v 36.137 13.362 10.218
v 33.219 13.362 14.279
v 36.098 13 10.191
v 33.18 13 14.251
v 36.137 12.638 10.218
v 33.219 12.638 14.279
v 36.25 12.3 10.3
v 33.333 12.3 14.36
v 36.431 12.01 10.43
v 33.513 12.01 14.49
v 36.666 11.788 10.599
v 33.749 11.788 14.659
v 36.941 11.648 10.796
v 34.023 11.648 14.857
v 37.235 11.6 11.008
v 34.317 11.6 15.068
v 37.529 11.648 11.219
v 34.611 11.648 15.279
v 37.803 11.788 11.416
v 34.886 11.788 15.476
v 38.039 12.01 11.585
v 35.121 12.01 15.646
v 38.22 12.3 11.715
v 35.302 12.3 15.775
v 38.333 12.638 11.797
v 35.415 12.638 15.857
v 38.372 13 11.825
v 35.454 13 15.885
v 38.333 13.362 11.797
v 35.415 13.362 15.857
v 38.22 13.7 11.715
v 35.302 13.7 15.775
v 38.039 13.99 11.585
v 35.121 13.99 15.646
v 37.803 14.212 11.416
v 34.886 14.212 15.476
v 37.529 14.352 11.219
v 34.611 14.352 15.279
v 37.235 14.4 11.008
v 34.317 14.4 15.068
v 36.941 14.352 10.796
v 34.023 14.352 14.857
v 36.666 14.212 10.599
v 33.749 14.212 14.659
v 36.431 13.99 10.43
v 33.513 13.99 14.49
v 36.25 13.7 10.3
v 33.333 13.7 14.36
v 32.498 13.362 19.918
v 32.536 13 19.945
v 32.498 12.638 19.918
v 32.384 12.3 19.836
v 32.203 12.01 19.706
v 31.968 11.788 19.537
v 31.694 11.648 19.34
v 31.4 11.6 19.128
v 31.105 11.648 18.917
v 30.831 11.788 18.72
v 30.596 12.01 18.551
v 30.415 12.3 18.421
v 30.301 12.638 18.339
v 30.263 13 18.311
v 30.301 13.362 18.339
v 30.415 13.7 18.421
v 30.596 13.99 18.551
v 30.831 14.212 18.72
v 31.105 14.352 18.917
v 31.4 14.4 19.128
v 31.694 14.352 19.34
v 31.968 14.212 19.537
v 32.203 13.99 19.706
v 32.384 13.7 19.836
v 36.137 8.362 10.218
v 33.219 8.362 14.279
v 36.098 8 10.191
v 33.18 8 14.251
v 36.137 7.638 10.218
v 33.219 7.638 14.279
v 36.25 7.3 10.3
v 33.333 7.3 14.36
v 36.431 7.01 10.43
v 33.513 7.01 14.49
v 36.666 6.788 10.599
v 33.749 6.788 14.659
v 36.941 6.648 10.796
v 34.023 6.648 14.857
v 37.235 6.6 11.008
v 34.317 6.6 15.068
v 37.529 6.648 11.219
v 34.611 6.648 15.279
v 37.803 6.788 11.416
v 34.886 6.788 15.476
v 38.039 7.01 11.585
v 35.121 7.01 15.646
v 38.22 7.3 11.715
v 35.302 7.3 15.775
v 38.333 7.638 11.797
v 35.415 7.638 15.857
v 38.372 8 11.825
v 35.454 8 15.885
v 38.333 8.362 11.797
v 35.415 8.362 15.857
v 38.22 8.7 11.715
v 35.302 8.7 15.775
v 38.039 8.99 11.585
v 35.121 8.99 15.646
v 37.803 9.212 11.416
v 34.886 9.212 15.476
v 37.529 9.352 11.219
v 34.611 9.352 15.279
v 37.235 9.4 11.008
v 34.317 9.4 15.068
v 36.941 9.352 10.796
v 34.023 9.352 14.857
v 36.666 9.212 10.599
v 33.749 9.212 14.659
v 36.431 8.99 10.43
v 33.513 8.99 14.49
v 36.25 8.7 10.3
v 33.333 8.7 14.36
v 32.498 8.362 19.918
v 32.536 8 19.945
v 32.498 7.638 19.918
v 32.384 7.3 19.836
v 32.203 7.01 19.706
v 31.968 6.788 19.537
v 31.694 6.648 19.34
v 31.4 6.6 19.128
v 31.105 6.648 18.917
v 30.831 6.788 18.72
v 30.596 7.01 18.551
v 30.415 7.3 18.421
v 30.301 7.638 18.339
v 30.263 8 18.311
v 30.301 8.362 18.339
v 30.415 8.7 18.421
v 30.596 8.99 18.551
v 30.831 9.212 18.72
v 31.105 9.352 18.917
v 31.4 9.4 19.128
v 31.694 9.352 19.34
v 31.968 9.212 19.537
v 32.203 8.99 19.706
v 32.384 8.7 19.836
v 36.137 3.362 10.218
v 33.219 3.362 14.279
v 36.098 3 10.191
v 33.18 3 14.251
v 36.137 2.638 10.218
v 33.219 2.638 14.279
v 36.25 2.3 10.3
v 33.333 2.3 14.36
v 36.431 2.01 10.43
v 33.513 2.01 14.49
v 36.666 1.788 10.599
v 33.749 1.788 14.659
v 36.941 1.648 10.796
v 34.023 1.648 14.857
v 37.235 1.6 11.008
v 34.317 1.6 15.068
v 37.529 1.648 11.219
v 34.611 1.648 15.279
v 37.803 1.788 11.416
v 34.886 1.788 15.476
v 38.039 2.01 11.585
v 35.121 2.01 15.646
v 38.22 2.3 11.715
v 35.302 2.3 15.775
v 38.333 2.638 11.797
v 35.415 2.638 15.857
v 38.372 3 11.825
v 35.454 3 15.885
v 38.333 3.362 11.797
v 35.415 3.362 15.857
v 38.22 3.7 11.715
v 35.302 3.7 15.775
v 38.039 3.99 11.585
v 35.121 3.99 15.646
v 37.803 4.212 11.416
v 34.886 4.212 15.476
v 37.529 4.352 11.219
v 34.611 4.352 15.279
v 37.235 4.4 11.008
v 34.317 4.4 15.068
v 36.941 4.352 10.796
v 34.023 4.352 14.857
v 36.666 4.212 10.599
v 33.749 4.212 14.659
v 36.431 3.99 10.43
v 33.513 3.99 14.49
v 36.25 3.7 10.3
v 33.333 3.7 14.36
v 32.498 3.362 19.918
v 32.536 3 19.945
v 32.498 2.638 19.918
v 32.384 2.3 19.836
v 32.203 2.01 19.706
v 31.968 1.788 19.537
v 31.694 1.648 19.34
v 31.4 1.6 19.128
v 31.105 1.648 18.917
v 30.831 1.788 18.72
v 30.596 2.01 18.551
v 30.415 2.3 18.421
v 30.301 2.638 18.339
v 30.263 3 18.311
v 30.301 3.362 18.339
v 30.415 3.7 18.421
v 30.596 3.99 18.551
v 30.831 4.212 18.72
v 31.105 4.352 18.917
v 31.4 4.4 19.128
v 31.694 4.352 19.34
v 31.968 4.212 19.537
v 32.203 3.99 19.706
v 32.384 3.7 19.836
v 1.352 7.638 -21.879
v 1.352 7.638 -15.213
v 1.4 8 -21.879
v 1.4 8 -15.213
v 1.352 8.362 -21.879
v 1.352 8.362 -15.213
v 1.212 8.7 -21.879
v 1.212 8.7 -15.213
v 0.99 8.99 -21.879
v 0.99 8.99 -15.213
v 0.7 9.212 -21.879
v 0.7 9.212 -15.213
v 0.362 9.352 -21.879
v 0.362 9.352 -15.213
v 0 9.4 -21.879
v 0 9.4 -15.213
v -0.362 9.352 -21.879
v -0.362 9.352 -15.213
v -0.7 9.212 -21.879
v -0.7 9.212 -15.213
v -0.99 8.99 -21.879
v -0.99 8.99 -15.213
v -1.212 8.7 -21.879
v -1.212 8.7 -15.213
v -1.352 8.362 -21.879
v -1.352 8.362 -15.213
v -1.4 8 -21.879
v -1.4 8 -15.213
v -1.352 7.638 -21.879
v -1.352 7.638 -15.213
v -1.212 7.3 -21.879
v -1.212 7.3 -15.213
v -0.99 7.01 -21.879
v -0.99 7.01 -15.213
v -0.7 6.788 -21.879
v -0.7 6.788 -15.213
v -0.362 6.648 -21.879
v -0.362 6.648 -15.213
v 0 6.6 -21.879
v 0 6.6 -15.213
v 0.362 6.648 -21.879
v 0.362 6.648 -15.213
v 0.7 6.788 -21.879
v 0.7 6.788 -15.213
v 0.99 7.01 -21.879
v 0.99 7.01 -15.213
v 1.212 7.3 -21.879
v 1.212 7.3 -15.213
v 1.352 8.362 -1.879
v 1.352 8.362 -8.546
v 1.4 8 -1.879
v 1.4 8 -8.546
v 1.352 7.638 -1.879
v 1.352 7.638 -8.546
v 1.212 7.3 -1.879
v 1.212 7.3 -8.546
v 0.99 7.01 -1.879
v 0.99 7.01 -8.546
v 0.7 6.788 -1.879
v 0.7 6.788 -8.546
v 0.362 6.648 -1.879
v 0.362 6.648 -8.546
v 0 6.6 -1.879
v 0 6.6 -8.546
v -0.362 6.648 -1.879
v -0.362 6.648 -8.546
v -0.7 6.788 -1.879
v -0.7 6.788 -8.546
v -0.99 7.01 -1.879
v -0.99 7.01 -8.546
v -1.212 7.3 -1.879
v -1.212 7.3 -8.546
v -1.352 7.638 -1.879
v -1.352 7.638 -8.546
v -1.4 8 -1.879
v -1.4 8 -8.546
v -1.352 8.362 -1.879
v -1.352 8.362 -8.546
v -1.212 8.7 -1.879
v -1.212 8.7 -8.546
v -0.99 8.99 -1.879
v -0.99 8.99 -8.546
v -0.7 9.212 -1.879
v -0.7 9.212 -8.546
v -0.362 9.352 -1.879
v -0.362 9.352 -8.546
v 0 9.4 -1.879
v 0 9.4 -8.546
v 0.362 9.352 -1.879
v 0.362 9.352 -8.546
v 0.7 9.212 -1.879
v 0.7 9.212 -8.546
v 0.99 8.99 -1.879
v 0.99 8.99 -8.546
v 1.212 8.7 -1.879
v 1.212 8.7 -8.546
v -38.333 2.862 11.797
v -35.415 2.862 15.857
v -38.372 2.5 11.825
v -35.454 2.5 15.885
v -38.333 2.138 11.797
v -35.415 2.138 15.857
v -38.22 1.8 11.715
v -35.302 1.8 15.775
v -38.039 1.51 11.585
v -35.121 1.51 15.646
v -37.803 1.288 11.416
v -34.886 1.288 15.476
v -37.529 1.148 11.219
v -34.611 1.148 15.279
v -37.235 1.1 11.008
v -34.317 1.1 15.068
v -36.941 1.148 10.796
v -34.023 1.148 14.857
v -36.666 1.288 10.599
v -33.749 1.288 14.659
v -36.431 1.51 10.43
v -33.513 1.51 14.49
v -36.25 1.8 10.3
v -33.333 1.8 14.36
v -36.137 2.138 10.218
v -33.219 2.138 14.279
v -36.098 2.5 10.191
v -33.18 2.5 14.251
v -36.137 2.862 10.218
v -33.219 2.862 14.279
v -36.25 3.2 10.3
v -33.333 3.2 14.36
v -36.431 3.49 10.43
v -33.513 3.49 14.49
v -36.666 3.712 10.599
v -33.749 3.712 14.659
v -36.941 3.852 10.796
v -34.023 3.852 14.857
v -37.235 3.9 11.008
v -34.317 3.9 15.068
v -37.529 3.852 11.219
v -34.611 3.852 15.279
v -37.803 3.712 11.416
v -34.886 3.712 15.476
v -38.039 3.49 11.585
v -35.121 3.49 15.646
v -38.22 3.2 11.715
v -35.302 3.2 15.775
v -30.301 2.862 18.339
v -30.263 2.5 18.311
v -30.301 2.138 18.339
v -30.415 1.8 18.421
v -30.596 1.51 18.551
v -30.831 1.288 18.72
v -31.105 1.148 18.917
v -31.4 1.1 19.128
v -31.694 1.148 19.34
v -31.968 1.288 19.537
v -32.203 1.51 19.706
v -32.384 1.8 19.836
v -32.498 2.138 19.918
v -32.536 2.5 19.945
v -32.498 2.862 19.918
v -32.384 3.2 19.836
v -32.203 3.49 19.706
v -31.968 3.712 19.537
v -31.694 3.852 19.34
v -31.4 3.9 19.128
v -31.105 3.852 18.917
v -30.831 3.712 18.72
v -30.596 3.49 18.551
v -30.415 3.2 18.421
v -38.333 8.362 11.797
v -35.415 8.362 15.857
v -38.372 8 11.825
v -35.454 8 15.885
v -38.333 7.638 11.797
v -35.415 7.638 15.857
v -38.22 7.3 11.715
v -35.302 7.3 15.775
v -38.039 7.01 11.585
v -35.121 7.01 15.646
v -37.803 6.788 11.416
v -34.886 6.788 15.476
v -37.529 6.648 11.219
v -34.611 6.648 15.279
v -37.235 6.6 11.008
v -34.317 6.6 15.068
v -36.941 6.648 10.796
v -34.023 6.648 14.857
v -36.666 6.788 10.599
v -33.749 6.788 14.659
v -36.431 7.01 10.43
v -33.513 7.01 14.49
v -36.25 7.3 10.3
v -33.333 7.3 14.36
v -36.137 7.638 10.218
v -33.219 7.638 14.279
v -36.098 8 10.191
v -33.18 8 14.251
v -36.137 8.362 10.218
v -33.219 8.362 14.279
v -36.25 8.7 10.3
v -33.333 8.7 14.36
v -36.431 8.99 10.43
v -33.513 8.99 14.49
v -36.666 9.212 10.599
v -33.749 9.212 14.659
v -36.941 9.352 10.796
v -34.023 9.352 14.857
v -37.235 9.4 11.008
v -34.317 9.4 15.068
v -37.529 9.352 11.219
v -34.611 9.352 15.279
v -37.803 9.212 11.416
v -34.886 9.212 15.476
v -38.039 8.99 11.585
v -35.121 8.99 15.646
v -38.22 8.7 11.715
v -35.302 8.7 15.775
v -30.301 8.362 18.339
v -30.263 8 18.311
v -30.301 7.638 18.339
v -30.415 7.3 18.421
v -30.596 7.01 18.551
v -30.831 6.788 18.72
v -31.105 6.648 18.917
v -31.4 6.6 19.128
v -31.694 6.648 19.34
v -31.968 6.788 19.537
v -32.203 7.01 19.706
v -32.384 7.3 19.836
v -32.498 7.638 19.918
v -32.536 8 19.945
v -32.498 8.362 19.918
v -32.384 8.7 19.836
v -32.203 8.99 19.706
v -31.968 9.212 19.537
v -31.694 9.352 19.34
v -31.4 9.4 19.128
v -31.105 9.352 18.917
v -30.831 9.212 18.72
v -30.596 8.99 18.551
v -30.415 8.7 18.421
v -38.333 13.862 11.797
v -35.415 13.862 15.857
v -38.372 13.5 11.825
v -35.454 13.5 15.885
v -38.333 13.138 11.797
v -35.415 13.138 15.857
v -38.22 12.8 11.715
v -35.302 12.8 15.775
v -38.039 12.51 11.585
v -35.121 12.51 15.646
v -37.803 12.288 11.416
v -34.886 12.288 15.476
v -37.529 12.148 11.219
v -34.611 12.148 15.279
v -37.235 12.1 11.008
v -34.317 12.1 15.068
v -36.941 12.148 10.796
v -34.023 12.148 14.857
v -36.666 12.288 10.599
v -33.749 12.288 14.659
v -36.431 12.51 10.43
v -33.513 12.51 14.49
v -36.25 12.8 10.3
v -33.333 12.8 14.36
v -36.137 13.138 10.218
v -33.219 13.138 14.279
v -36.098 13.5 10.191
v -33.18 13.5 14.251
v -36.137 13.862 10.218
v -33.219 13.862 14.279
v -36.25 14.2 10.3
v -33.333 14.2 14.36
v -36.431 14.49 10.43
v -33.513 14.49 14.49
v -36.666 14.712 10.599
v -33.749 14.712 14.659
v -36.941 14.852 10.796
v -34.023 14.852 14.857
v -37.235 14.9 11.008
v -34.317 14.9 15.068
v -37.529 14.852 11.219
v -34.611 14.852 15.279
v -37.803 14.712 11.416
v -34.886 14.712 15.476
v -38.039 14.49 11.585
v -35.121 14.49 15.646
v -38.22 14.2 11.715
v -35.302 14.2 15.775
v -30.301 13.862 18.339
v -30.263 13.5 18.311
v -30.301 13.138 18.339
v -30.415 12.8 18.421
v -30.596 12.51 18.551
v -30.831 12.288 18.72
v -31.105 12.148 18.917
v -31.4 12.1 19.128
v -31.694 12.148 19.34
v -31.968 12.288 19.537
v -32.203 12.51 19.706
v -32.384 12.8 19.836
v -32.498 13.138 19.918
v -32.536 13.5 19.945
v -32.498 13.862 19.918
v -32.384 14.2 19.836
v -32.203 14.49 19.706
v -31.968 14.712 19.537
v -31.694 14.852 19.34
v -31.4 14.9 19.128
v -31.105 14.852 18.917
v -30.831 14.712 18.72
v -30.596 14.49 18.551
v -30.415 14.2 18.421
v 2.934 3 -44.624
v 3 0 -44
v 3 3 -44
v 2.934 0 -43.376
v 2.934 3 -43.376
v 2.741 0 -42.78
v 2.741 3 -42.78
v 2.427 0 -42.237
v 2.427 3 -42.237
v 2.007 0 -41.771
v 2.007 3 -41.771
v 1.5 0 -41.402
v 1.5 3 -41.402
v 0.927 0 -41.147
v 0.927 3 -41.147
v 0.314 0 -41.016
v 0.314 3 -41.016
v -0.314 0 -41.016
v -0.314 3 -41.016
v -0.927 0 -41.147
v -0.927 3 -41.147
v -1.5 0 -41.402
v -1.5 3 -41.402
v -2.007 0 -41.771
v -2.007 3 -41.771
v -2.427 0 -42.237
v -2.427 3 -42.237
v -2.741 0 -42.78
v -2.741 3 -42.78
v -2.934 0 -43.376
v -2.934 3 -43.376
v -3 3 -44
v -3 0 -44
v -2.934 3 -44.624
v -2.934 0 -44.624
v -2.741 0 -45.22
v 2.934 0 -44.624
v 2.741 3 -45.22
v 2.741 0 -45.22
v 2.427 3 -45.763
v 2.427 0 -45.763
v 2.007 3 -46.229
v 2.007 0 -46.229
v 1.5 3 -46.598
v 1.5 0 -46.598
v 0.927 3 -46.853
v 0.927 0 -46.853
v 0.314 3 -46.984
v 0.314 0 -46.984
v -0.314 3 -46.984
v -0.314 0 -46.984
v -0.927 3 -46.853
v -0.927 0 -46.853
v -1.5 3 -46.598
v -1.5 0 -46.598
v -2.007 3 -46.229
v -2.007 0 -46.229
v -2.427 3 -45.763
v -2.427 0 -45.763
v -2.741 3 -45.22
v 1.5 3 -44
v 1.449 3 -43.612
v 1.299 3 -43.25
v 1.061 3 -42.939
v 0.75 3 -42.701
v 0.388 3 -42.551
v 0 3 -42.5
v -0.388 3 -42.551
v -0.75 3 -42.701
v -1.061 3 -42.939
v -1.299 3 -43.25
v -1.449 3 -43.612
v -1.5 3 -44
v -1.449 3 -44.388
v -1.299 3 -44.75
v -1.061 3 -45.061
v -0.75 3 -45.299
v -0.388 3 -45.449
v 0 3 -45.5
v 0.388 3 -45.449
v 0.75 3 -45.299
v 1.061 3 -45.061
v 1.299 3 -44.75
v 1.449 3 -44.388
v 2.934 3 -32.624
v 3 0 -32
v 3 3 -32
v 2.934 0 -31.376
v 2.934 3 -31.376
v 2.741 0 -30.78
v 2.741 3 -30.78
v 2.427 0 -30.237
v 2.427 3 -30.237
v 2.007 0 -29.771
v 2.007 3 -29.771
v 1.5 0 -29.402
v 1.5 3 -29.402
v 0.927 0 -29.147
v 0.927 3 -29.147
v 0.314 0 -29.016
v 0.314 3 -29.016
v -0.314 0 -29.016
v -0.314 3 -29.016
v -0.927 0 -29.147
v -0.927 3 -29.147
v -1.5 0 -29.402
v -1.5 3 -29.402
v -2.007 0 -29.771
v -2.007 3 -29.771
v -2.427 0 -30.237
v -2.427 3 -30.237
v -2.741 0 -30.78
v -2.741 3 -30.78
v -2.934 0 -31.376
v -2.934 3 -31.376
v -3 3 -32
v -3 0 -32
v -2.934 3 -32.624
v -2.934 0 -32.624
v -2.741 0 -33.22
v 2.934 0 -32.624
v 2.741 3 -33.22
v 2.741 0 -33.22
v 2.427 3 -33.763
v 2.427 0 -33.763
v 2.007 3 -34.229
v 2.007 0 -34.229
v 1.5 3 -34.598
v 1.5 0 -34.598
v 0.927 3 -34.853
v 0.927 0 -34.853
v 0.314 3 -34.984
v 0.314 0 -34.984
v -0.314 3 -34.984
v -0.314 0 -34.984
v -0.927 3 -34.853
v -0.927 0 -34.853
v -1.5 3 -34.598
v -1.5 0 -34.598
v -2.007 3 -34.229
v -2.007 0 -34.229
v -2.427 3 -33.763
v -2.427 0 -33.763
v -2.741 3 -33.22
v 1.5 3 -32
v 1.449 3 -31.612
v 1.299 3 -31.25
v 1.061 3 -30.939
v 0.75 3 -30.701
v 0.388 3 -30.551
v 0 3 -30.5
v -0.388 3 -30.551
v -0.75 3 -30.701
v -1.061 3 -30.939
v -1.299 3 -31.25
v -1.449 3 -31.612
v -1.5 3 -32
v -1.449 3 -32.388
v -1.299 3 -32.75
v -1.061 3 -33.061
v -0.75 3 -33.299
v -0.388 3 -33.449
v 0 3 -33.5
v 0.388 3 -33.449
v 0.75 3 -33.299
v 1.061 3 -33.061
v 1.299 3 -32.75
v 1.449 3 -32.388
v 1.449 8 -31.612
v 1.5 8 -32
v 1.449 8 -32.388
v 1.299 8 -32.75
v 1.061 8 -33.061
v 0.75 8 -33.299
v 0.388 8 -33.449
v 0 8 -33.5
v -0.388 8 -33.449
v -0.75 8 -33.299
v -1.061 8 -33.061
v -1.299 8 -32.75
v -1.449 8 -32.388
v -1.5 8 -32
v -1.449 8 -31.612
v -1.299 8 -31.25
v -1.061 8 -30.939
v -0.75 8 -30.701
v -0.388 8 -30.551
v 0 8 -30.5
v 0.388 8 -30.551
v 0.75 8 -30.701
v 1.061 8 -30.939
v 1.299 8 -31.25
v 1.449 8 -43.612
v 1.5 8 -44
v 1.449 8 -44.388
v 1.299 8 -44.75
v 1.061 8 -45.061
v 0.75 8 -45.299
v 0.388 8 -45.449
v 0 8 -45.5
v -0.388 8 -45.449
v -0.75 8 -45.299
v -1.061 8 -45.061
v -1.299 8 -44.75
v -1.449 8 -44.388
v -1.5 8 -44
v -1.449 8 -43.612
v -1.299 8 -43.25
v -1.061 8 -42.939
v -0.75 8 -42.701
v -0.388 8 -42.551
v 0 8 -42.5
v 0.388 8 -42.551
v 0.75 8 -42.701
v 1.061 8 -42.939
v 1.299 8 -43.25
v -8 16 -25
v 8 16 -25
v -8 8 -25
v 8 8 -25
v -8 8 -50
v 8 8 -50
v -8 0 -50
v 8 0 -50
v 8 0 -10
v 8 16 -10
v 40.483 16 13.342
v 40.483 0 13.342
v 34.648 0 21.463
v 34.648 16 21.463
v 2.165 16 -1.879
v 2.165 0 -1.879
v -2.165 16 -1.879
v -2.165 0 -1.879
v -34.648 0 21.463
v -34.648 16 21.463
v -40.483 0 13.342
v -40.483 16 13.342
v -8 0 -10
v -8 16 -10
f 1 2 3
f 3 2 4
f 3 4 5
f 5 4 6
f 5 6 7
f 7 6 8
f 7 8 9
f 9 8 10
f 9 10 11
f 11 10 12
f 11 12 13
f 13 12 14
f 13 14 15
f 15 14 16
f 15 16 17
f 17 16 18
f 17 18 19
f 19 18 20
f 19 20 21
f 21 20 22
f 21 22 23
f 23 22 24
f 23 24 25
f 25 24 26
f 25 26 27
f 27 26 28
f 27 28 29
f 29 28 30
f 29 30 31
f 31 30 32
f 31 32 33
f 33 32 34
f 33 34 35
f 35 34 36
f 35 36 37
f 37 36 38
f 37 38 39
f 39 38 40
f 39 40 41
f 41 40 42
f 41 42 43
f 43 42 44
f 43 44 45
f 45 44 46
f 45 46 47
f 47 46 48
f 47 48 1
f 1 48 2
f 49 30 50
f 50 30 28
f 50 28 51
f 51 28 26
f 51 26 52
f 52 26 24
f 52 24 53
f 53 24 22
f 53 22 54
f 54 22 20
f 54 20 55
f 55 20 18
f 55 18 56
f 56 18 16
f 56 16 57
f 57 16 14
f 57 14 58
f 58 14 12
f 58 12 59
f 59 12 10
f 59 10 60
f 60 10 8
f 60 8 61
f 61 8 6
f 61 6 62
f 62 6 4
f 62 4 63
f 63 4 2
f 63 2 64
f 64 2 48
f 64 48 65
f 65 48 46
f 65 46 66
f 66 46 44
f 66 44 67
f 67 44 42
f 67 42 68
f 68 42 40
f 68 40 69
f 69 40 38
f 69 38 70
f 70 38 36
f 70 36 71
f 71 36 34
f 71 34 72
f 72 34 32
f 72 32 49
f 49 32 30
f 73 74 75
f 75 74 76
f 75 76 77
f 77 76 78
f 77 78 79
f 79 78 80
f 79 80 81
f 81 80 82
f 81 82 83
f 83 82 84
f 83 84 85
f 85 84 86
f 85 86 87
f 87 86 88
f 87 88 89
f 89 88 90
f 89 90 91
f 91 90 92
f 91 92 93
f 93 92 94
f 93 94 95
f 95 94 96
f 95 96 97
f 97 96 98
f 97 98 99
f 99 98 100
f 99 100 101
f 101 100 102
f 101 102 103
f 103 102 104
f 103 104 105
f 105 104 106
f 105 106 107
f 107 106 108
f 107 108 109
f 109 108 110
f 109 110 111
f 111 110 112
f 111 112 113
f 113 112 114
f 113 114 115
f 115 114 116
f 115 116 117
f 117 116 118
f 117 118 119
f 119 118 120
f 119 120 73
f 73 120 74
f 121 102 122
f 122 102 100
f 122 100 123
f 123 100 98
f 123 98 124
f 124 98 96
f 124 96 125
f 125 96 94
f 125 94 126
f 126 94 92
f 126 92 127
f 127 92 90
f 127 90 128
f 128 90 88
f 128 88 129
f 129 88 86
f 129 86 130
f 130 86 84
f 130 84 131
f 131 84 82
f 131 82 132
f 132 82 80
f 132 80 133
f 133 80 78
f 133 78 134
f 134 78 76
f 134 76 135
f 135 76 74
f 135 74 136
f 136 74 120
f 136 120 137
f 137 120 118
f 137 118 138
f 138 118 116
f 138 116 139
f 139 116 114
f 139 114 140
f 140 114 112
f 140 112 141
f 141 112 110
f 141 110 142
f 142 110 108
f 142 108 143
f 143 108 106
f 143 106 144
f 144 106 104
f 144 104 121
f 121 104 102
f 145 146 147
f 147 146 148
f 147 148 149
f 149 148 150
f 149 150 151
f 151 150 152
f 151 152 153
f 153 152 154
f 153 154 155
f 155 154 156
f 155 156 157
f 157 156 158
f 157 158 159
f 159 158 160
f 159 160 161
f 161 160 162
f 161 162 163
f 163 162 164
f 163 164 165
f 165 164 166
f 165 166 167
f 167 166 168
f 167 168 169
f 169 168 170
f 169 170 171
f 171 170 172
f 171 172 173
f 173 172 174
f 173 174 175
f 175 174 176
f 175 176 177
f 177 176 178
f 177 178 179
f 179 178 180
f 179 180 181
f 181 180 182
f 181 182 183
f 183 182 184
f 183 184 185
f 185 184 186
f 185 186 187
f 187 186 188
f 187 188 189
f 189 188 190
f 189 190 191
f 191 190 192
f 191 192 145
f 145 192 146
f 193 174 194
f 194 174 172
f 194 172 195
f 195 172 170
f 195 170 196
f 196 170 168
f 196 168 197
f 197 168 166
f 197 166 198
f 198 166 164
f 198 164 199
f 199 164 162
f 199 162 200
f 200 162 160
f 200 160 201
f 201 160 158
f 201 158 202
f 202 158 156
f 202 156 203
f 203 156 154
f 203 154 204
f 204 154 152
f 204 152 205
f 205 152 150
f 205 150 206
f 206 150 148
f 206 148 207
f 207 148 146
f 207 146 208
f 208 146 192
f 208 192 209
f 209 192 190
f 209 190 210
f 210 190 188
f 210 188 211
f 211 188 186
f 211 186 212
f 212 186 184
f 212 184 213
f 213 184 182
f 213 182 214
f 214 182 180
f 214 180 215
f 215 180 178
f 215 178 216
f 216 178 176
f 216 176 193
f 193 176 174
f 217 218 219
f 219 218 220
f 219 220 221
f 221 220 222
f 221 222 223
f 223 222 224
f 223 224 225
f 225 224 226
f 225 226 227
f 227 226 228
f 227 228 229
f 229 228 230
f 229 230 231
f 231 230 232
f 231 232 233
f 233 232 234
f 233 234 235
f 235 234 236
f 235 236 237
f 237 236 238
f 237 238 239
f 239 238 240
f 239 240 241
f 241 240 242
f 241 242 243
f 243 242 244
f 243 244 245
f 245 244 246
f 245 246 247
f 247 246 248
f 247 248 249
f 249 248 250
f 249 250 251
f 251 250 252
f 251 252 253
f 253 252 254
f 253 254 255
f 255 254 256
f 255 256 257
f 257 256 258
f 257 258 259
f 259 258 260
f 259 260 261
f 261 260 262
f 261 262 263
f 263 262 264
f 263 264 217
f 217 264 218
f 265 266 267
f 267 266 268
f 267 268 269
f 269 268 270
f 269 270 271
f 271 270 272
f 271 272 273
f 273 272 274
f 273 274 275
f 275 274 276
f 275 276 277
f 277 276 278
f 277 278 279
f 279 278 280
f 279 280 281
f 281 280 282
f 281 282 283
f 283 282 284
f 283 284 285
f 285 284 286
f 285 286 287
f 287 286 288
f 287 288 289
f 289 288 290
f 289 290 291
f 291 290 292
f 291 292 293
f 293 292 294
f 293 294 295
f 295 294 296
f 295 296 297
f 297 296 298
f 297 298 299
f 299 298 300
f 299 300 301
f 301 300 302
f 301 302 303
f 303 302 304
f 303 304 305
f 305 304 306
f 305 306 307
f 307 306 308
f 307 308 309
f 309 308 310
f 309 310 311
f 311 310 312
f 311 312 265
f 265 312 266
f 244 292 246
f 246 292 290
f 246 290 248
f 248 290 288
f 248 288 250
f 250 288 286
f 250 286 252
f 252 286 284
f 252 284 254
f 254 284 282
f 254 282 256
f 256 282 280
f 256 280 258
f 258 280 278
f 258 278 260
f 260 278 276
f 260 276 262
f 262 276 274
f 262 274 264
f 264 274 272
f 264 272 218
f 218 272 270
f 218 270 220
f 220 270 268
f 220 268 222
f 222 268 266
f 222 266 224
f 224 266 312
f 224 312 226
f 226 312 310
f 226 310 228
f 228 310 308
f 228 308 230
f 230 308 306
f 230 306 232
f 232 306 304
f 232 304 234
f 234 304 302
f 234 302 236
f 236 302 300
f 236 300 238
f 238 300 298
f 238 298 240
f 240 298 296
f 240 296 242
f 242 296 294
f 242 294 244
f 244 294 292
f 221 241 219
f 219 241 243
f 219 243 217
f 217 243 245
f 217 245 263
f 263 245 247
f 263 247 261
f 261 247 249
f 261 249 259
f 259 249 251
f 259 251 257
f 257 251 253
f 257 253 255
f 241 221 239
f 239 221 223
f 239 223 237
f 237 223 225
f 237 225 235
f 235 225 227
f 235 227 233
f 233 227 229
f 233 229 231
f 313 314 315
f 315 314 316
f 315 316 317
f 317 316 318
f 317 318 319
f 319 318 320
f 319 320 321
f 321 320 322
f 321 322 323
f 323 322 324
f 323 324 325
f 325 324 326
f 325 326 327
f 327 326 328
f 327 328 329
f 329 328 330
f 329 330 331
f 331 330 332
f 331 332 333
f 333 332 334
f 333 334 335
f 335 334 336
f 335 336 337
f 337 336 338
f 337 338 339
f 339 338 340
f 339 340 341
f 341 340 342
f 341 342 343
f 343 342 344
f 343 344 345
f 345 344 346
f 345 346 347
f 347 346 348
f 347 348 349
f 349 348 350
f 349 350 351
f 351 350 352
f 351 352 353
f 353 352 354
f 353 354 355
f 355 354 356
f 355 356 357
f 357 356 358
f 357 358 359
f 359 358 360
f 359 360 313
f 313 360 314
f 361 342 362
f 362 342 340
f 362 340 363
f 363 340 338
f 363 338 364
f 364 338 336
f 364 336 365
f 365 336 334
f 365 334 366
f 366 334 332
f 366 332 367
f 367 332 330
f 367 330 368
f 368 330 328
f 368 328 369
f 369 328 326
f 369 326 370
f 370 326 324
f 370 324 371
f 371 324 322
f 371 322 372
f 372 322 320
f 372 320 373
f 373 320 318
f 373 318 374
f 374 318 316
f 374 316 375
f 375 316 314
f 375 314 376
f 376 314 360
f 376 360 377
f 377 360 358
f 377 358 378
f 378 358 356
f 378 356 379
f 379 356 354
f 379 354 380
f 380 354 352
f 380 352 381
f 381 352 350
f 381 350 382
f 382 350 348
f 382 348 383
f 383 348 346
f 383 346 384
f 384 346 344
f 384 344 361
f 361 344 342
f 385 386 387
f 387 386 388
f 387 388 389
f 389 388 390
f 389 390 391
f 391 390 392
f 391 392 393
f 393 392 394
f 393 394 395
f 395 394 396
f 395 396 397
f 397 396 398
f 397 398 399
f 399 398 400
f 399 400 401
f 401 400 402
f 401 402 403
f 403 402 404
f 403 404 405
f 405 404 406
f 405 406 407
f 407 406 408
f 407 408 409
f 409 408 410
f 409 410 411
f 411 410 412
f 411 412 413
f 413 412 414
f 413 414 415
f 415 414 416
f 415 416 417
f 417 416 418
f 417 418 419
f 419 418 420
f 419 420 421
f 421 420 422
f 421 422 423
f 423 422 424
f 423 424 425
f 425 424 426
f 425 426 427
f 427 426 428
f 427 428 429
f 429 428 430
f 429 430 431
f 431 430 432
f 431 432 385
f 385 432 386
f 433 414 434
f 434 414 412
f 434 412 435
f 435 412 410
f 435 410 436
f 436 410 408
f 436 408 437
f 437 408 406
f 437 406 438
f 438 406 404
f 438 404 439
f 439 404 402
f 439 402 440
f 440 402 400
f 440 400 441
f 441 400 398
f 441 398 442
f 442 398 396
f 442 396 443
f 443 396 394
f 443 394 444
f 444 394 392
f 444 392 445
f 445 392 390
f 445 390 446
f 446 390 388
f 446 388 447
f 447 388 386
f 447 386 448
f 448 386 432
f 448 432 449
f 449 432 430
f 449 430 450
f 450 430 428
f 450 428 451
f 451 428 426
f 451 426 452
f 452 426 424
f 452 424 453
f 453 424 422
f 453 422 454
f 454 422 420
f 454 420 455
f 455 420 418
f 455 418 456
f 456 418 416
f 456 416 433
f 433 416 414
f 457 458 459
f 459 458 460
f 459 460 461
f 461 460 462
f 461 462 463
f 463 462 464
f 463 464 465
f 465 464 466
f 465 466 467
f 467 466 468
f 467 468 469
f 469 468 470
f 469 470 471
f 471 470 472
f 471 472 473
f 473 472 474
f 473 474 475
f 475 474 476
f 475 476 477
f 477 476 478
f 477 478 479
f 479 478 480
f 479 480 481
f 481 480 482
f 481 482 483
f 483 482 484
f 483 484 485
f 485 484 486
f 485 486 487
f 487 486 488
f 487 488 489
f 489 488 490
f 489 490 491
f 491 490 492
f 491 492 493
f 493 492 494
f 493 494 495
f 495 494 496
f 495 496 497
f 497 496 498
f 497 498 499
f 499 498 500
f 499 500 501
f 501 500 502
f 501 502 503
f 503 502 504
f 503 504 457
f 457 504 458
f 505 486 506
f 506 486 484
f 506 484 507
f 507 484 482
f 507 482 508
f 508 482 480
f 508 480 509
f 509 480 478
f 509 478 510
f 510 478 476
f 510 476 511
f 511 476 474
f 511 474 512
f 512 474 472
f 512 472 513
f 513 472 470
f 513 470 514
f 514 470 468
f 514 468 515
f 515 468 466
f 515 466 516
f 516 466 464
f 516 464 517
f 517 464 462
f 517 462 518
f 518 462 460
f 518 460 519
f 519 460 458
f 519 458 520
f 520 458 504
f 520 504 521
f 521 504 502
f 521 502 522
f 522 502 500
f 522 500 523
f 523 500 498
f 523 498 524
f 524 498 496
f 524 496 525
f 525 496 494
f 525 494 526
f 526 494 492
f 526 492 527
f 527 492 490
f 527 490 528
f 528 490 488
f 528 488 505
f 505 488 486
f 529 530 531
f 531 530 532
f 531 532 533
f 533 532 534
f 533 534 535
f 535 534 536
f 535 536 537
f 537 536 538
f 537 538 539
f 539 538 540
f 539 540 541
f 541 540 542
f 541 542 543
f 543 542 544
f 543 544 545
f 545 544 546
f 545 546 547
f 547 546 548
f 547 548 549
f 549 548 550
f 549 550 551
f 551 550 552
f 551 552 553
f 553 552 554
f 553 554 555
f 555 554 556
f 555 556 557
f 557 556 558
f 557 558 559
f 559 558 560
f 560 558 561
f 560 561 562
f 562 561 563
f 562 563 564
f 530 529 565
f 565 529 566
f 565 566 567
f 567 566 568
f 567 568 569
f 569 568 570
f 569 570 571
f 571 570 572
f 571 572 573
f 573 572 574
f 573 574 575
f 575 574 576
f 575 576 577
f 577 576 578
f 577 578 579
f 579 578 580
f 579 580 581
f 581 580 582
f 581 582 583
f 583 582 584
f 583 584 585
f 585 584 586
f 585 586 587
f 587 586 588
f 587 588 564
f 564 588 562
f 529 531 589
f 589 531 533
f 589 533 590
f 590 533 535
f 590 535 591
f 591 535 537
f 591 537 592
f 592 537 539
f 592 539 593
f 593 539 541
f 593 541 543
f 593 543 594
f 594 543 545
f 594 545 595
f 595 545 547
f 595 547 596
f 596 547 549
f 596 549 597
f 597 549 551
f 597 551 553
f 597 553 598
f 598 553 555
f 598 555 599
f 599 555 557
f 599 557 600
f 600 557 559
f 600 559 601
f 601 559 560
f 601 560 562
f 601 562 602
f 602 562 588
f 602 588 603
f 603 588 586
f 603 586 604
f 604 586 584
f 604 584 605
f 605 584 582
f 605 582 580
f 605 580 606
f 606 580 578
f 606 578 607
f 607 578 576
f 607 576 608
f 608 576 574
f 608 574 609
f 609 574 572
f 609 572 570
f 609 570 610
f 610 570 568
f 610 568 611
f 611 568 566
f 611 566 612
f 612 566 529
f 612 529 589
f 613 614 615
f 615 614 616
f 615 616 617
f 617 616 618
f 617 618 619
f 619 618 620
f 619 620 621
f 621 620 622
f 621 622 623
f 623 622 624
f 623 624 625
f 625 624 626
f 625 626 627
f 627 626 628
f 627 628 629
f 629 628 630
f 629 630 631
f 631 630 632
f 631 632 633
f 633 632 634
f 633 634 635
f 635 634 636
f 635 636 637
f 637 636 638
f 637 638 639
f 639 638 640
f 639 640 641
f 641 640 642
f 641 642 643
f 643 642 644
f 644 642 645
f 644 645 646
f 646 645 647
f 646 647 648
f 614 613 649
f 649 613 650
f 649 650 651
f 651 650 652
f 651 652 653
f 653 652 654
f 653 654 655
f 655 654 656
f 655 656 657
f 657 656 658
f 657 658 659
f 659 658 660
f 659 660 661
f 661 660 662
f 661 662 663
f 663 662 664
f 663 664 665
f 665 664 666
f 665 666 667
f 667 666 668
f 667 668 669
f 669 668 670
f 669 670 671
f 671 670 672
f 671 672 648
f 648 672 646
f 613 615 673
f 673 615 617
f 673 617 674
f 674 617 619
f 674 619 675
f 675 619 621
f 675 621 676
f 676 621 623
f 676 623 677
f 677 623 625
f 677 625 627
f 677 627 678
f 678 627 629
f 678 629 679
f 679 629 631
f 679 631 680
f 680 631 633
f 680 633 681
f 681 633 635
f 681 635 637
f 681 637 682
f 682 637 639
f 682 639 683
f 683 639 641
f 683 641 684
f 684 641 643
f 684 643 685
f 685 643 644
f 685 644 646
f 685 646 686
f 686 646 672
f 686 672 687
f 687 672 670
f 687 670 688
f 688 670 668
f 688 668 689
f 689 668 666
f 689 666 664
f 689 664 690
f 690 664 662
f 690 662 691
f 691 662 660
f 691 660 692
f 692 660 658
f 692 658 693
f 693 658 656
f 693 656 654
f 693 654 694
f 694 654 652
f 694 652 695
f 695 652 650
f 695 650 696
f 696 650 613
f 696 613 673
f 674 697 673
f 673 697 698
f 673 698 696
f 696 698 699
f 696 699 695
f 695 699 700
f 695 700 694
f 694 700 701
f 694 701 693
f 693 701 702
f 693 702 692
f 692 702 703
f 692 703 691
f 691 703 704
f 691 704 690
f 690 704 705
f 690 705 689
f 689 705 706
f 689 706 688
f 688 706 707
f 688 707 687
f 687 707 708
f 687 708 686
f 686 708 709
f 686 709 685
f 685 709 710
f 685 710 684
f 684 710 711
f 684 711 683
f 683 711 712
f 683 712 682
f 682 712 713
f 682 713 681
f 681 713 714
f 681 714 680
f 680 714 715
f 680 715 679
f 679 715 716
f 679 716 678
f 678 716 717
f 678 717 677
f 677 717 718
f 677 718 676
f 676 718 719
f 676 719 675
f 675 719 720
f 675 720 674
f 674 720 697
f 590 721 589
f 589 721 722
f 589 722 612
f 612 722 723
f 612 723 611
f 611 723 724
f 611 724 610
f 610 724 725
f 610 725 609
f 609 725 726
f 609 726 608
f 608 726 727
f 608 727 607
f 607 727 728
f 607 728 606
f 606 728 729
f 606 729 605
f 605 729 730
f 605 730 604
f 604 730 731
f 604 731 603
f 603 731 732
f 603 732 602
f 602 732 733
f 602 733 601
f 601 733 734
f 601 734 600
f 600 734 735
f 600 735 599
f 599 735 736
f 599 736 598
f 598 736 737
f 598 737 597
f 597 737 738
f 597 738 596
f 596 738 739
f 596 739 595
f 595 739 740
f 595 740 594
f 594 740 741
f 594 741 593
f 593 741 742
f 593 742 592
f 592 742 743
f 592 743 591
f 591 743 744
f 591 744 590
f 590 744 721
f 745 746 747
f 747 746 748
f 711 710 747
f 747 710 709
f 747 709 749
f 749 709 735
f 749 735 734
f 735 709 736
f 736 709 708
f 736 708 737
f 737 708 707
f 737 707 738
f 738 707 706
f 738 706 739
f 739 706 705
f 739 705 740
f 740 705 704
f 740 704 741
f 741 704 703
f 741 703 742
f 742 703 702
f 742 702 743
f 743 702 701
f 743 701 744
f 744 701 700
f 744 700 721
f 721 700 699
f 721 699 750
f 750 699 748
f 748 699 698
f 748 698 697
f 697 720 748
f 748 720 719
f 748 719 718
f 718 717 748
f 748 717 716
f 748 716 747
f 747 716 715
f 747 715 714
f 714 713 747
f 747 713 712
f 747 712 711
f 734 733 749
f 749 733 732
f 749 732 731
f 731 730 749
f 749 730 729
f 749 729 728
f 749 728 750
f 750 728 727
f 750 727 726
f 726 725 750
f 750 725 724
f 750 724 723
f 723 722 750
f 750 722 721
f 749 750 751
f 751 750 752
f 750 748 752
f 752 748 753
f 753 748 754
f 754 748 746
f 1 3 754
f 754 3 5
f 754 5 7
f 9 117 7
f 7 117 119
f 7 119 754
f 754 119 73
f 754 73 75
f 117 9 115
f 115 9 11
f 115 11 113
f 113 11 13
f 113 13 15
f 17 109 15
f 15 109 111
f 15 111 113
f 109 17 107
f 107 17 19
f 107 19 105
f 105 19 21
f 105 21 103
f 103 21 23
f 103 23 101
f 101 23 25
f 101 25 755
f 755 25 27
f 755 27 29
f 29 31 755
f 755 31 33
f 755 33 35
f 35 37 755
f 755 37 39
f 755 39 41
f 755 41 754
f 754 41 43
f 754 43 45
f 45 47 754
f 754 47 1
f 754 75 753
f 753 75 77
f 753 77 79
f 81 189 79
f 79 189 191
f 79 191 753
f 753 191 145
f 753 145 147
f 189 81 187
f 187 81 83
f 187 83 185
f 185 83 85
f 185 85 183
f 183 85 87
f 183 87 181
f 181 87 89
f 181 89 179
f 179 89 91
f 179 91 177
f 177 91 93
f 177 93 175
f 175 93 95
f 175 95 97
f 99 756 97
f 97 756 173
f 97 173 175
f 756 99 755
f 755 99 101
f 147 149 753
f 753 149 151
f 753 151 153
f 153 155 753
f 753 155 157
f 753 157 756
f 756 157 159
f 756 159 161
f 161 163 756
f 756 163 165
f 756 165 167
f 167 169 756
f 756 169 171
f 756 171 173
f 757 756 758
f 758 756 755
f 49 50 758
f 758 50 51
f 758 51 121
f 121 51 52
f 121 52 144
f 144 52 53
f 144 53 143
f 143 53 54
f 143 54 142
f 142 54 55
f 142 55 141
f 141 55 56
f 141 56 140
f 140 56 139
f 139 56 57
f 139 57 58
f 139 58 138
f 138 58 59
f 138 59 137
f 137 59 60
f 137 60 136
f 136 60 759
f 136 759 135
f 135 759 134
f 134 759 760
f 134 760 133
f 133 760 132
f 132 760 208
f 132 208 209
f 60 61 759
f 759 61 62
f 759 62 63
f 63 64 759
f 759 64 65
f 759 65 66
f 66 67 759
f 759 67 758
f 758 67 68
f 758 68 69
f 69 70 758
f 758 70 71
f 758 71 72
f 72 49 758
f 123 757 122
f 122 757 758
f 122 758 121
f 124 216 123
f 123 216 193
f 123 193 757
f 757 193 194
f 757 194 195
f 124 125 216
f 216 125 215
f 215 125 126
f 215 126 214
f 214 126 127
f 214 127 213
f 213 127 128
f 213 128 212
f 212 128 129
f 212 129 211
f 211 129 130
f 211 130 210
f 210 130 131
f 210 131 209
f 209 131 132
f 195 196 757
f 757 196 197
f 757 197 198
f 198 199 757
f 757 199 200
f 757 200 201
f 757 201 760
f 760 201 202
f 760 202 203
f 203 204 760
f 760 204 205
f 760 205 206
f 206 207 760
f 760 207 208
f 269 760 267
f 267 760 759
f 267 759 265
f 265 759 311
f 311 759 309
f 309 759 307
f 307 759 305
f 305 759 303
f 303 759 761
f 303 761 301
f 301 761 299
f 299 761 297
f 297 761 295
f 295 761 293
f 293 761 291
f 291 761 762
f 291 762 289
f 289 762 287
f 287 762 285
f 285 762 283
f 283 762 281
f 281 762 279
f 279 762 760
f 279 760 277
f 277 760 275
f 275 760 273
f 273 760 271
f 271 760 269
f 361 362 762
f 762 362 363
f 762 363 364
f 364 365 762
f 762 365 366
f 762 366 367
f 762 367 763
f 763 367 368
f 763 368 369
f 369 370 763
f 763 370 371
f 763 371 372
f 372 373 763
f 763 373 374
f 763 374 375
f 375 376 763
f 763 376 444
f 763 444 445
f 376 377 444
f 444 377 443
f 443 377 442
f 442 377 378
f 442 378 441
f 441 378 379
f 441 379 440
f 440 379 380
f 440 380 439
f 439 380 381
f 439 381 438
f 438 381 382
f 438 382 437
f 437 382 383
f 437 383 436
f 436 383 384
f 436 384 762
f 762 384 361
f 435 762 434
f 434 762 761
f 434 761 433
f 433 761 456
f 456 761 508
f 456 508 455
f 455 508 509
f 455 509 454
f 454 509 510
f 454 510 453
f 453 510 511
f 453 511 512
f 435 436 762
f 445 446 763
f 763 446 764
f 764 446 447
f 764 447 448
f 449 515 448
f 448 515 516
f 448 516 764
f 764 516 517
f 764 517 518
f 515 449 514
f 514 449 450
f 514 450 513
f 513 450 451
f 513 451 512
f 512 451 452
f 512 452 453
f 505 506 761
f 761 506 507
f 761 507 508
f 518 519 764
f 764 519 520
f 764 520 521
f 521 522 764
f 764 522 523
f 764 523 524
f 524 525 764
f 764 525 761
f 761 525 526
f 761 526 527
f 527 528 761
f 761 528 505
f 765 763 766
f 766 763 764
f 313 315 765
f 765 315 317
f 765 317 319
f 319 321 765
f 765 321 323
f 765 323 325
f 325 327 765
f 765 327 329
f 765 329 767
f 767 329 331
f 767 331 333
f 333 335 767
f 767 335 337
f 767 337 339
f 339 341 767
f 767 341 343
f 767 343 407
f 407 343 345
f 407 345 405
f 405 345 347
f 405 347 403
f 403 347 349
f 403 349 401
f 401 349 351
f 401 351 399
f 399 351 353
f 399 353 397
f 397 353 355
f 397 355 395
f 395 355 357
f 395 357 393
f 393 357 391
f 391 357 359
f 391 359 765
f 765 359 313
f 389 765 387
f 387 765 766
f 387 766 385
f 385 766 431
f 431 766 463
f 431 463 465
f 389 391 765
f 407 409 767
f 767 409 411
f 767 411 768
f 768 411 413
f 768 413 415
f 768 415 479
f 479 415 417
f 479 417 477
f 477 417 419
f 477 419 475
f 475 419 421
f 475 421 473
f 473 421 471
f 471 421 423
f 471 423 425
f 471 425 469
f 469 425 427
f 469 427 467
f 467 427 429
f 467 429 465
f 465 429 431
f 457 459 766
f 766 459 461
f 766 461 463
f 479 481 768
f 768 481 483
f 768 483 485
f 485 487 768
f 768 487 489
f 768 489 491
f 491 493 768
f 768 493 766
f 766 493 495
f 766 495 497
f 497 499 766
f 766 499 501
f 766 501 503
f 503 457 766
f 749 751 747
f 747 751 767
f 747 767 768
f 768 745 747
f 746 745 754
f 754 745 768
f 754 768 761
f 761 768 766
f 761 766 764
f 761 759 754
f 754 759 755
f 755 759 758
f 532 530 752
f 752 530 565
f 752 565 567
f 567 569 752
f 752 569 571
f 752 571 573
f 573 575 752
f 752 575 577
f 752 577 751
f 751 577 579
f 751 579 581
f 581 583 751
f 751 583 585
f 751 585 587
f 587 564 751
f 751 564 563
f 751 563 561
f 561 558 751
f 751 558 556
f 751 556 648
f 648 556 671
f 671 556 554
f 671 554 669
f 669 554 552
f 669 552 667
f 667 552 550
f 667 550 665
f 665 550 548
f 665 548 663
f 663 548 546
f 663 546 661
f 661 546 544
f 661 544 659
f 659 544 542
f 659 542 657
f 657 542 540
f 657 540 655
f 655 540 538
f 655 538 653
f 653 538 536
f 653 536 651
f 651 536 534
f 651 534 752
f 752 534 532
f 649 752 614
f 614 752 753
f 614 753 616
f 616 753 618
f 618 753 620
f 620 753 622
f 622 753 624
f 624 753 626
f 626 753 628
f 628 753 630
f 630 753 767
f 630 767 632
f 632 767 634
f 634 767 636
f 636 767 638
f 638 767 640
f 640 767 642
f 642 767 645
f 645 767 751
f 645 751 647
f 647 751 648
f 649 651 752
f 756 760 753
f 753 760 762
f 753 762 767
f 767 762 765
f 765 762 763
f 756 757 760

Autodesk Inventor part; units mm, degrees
ref_plane "YZ Plane" through (0, 0, 0) normal (1, 0, 0) x (0, 1, 0)
ref_plane "XZ Plane" through (0, 0, 0) normal (0, 1, 0) x (-1, 0, 0)
ref_plane "XY Plane" through (0, 0, 0) normal (0, 0, 1) x (1, 0, 0)
sketch "Sketch1" plane through (0, 0, 0) normal (0, 1, 0) x (-1, 0, 0)
  line L0 (0, -50) -> (8, -50)
  line L1 (8, -50) -> (8, -10)
  line L2 (0, 0) -> (0, -50) construction
  line L3 (0, -50) -> (-8, -50)
  line L4 (-8, -50) -> (-8, -10)
  line L5 (8, -10) -> (40.4833, 13.3417)
  line L6 (40.4833, 13.3417) -> (34.6478, 21.4626)
  line L7 (34.6478, 21.4626) -> (2.1646, -1.8792)
  line L8 (2.1646, -1.8792) -> (0, -1.8792)
  line L9 (-8, -10) -> (-40.4833, 13.3417)
  line L10 (-40.4833, 13.3417) -> (-34.6478, 21.4626)
  line L11 (-34.6478, 21.4626) -> (-2.1646, -1.8792)
  line L12 (-2.1646, -1.8792) -> (0, -1.8792)
  point P0 (4, -50)
  dimension "d0" = 16
  dimension "d17" = 10
  dimension "d18" = 40
extrude "Extrusion1" add sketch "Sketch1" along normal blind 16
sketch "Sketch2" plane through (0, 16, 0) normal (0, 1, 0) x (1, 0, 0)
  line L0 (8, 50) -> (-8, 50) projected
  line L1 (-8, 50) -> (-8, 10) projected
  line L2 (8, 10) -> (8, 50) projected
  line L3 (8, 10) -> (8, 50) projected
  line L4 (-8, 50) -> (8, 50)
  line L5 (8, 50) -> (8, 25)
  line L6 (8, 25) -> (-8, 25)
  line L7 (-8, 25) -> (-8, 50)
  line L8 (-8, 10) -> (-40.4833, -13.3417) projected
  line L9 (-40.4833, -13.3417) -> (-34.6478, -21.4626) projected
  line L10 (-34.6478, -21.4626) -> (-2.1646, 1.8792) projected
  line L11 (-2.1646, 1.8792) -> (2.1646, 1.8792) projected
  line L12 (2.1646, 1.8792) -> (34.6478, -21.4626) projected
  line L13 (34.6478, -21.4626) -> (40.4833, -13.3417) projected
  line L14 (40.4833, -13.3417) -> (8, 10) projected
  point P0 (0, 0)
  dimension "d6" = 25
extrude "Extrusion2" cut sketch "Sketch2" against normal blind 8 contours L2 L6 L1 L0
sketch "Sketch3" plane through (0, 0, 0) normal (0, -1, 0) x (1, 0, 0)
  line L0 (8, -50) -> (-8, -50) projected
  line L1 (8, -10) -> (8, -50) projected
  line L2 (-8, -50) -> (-8, -10) projected
  circle A0 centre (0, -44) radius 1.5
  circle A1 centre (0, -32) radius 1.5
  line L3 (40.4833, 13.3417) -> (8, -10) projected
  line L4 (34.6478, 21.4626) -> (40.4833, 13.3417) projected
  line L5 (2.1646, -1.8792) -> (34.6478, 21.4626) projected
  line L6 (-2.1646, -1.8792) -> (2.1646, -1.8792) projected
  line L7 (-34.6478, 21.4626) -> (-2.1646, -1.8792) projected
  line L8 (-40.4833, 13.3417) -> (-34.6478, 21.4626) projected
  line L9 (-8, -10) -> (-40.4833, 13.3417) projected
  point P0 (0, 0)
  dimension "d9" = 3
  dimension "d10" = 6
  dimension "d11" = 12
extrude "Extrusion3" cut sketch "Sketch3" against normal through all contours A0 | A1
sketch "Sketch4" plane through (0, 0, 0) normal (0, -1, 0) x (1, 0, 0)
  circle A0 centre (0, -32) radius 1.5 projected
  circle A1 centre (0, -44) radius 1.5 projected
  line L0 (8, -50) -> (-8, -50) projected
  line L1 (8, -10) -> (8, -50) projected
  line L2 (-8, -50) -> (-8, -10) projected
  circle A2 centre (0, -44) radius 3
  circle A3 centre (0, -32) radius 1.5 projected
  circle A4 centre (0, -32) radius 3
  line L3 (40.4833, 13.3417) -> (8, -10) projected
  line L4 (34.6478, 21.4626) -> (40.4833, 13.3417) projected
  line L5 (2.1646, -1.8792) -> (34.6478, 21.4626) projected
  line L6 (-2.1646, -1.8792) -> (2.1646, -1.8792) projected
  line L7 (-34.6478, 21.4626) -> (-2.1646, -1.8792) projected
  line L8 (-40.4833, 13.3417) -> (-34.6478, 21.4626) projected
  line L9 (-8, -10) -> (-40.4833, 13.3417) projected
  point P0 (0, 0)
  dimension "d14" = 6
extrude "Extrusion4" cut sketch "Sketch4" against normal blind 3 contours A2 | A4
sketch "Sketch5" plane through (-2.1646, 0, -1.8792) normal (0.5835436, 0, 0.8120818) x (0.8120818, 0, -0.5835436)
  line L0 (-40, 0) -> (0, 0) projected
  line L1 (0, 0) -> (0, 16) projected
  line L2 (-40, 16) -> (0, 16) projected
  line L3 (-40, 0) -> (-40, 16) projected
  line L4 (-40, 0) -> (-40, 16) construction
  line L5 (-40, 8) -> (0, 8) construction
  line L6 (0, 0) -> (0, 16) construction
  circle A0 centre (-36, 13.5) radius 1.4
  circle A1 centre (-36, 8) radius 1.4
  circle A2 centre (-36, 2.5) radius 1.4
  point P0 (0.6612, 0)
  dimension "d19" = 2.8
  dimension "d20" = 11
  dimension "d21" = 4
extrude "Extrusion5" cut sketch "Sketch5" against normal through all contours A0 | A1 | A2
sketch "Sketch7" plane through (-2.1646, 0, -1.8792) normal (0, 0, 1) x (1, 0, 0)
  line L0 (0, 0) -> (4.3291, 0) projected
  line L1 (4.3291, 0) -> (4.3291, 16) projected
  line L2 (0, 16) -> (4.3291, 16) projected
  line L3 (0, 0) -> (0, 16) projected
  line L4 (0, 0) -> (0, 16) construction
  line L5 (0, 8) -> (4.3291, 8) construction
  line L6 (0.6646, 8) -> (3.6646, 8) projected
  circle A0 centre (2.1646, 8) radius 1.4
  point P0 (2.1646, 0)
  dimension "d24" = 2.8
extrude "Extrusion6" cut sketch "Sketch7" against normal blind 20 contours A0 L6 | L6 A0
sketch "Sketch8" plane through (34.6478, 0, 21.4626) normal (-0.5835436, 0, 0.8120818) x (0.8120818, 0, 0.5835436)
  line L0 (-40, 0) -> (0, 0) projected
  line L1 (0, 0) -> (0, 16) projected
  line L2 (-40, 16) -> (0, 16) projected
  line L3 (-40, 0) -> (-40, 16) projected
  line L4 (0, 0) -> (0, 16) construction
  line L5 (0, 8) -> (-40, 8) construction
  line L6 (-40, 0) -> (-40, 16) construction
  circle A0 centre (-4, 8) radius 1.4
  circle A1 centre (-4, 3) radius 1.4
  circle A2 centre (-4, 13) radius 1.4
  point P0 (-40.6612, 0)
  dimension "d27" = 2.8
  dimension "d28" = 4
  dimension "d29" = 10
extrude "Extrusion7" cut sketch "Sketch8" against normal through all contours A0 | A1 | A2
properties part number "B1_head_Y"
